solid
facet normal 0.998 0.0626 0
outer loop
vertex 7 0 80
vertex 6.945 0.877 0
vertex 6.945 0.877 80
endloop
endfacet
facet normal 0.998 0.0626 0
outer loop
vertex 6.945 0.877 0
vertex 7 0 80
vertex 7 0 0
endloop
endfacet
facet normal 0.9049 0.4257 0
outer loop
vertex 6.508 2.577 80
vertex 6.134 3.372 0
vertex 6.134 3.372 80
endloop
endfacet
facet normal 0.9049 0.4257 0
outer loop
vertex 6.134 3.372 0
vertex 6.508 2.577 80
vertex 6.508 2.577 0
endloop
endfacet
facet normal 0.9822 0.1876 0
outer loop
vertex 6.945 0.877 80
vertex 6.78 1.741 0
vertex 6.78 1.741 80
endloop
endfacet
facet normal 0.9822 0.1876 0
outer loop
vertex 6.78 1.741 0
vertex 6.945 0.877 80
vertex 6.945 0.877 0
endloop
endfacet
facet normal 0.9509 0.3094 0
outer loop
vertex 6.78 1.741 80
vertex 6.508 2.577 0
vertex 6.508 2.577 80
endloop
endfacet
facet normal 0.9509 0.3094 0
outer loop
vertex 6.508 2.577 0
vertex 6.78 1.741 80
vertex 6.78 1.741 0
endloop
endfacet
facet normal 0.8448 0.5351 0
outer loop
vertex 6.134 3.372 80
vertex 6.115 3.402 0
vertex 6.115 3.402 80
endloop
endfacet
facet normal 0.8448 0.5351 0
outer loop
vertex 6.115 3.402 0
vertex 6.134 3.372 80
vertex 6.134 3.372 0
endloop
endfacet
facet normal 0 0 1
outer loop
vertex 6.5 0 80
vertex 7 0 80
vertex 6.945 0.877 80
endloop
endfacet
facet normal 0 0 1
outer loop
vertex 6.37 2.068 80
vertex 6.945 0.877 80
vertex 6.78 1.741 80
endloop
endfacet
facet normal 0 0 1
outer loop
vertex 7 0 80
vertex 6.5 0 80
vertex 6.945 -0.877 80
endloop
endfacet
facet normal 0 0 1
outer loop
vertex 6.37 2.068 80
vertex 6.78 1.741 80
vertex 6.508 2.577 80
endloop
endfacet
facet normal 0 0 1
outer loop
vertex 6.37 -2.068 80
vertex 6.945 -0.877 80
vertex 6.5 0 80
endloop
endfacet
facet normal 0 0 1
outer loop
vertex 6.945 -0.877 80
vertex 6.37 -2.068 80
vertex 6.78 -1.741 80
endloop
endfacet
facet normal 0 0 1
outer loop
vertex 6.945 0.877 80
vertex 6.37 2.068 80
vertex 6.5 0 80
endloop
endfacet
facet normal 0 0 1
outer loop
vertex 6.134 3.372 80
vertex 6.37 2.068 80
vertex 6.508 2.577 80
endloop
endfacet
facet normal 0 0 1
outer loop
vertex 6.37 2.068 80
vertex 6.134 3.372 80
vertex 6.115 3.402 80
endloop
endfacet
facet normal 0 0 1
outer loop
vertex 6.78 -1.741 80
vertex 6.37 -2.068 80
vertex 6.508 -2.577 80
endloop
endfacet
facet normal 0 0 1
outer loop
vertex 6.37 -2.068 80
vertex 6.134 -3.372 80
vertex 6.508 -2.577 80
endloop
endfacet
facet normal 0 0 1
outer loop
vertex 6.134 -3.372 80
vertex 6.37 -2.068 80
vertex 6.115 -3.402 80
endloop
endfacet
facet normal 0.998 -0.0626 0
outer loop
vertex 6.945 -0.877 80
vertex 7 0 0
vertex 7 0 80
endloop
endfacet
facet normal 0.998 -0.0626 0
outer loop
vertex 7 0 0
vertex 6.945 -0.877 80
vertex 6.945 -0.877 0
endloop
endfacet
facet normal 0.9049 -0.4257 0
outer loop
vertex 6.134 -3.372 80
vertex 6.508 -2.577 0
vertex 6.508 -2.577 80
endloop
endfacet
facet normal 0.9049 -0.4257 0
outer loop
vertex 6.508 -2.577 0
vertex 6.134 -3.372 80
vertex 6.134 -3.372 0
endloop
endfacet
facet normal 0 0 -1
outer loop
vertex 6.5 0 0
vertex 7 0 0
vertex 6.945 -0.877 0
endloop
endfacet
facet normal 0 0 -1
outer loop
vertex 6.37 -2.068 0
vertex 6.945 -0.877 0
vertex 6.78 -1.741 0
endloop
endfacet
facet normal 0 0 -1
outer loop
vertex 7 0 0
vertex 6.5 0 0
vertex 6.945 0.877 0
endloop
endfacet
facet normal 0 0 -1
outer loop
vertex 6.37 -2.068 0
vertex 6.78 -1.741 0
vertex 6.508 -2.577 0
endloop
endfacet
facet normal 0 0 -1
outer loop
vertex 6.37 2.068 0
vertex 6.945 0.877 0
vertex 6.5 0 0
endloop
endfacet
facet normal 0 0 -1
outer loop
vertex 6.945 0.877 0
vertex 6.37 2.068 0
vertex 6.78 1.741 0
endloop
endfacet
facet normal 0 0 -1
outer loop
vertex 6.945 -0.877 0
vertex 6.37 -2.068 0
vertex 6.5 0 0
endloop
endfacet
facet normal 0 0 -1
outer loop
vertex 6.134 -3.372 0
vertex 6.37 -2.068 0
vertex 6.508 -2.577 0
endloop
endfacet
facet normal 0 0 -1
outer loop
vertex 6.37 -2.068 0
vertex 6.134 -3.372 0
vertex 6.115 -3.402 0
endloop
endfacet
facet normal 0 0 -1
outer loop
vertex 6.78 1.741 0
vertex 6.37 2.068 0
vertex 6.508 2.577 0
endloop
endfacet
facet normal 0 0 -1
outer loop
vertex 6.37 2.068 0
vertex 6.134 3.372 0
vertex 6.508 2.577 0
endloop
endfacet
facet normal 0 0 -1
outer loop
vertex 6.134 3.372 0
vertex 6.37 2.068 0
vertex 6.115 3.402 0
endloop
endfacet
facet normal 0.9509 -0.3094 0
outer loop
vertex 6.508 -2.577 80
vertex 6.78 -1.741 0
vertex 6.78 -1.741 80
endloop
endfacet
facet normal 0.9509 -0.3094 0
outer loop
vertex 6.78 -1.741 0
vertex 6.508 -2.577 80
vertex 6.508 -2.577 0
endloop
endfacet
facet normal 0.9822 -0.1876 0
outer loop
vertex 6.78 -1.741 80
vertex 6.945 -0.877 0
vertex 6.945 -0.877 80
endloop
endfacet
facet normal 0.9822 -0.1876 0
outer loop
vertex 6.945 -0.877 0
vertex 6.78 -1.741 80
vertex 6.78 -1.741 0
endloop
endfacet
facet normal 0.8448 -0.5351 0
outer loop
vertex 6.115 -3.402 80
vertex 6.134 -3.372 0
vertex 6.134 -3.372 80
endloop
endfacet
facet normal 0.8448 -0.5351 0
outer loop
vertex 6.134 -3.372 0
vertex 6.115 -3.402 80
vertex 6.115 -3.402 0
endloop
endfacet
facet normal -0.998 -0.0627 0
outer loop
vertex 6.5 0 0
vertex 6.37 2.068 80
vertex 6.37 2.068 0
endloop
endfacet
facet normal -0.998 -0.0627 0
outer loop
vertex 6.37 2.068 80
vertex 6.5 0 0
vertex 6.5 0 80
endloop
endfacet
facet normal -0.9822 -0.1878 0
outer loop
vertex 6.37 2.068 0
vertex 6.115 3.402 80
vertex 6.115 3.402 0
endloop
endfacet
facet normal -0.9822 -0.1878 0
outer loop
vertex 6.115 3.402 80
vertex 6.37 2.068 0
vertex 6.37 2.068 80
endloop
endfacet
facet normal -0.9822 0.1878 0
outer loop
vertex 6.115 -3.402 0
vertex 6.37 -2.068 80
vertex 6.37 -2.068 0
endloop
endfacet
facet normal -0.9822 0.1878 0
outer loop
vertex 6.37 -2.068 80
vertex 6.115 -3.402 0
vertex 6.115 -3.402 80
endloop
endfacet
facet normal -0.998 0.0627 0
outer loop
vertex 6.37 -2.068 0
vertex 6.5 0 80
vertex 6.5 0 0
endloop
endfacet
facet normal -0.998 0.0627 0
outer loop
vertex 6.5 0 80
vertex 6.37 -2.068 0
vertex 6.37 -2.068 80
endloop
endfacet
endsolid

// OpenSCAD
$fn = 50;


difference() {
	union() {
		cylinder(h = 80, r = 7.0000000000);
		translate(v = [-13.0000000000, 0, 0]) {
			cylinder(h = 80, r = 7.0000000000);
		}
	}
	union() {
		cylinder(h = 80, r = 3.2500000000);
		cylinder(h = 80, r = 1.8000000000);
		cylinder(h = 80, r = 1.8000000000);
		cylinder(h = 80, r = 1.8000000000);
		translate(v = [-17.5000000000, 0, 0]) {
			hull() {
				translate(v = [-3.7500000000, 0.0000000000, 0]) {
					cylinder(h = 80, r = 7.5000000000);
				}
				translate(v = [3.7500000000, 0.0000000000, 0]) {
					cylinder(h = 80, r = 7.5000000000);
				}
				translate(v = [-3.7500000000, -0.0000000000, 0]) {
					cylinder(h = 80, r = 7.5000000000);
				}
				translate(v = [3.7500000000, -0.0000000000, 0]) {
					cylinder(h = 80, r = 7.5000000000);
				}
			}
		}
		translate(v = [-10.0000000000, 0, 0.0000000000]) {
			cylinder(h = 80, r = 16.5000000000);
		}
	}
}
